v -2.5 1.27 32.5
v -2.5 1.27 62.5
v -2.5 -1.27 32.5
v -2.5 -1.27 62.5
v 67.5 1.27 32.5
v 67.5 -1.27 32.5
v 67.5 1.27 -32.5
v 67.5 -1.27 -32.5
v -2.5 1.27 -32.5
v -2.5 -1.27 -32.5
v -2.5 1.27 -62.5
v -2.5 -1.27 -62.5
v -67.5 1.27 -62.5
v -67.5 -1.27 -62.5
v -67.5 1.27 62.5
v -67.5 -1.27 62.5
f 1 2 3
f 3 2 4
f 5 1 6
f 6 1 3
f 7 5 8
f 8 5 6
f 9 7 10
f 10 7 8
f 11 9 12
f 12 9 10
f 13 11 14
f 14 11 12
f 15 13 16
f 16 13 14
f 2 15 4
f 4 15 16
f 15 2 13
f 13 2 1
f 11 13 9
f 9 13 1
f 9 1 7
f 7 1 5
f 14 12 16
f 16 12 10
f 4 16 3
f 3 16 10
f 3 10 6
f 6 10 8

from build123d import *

# Parameters (mm, degrees)
BOSS_EXTRUDE1_DEPTH = 1.27


with BuildPart() as part:
    # Sketch1 → Boss-Extrude1 (new body, symmetric)
    with BuildSketch(Plane(origin=(0, 0, 0), x_dir=(1, 0, 0), z_dir=(0, 1, 0))):
        Polygon((67.5, -32.5), (67.5, 32.5), (-2.5, 32.5), (-2.5, 62.5), (-67.5, 62.5), (-67.5, -62.5), (-2.5, -62.5), (-2.5, -32.5), align=None)
    extrude(amount=BOSS_EXTRUDE1_DEPTH, both=True)


solid = part.part
